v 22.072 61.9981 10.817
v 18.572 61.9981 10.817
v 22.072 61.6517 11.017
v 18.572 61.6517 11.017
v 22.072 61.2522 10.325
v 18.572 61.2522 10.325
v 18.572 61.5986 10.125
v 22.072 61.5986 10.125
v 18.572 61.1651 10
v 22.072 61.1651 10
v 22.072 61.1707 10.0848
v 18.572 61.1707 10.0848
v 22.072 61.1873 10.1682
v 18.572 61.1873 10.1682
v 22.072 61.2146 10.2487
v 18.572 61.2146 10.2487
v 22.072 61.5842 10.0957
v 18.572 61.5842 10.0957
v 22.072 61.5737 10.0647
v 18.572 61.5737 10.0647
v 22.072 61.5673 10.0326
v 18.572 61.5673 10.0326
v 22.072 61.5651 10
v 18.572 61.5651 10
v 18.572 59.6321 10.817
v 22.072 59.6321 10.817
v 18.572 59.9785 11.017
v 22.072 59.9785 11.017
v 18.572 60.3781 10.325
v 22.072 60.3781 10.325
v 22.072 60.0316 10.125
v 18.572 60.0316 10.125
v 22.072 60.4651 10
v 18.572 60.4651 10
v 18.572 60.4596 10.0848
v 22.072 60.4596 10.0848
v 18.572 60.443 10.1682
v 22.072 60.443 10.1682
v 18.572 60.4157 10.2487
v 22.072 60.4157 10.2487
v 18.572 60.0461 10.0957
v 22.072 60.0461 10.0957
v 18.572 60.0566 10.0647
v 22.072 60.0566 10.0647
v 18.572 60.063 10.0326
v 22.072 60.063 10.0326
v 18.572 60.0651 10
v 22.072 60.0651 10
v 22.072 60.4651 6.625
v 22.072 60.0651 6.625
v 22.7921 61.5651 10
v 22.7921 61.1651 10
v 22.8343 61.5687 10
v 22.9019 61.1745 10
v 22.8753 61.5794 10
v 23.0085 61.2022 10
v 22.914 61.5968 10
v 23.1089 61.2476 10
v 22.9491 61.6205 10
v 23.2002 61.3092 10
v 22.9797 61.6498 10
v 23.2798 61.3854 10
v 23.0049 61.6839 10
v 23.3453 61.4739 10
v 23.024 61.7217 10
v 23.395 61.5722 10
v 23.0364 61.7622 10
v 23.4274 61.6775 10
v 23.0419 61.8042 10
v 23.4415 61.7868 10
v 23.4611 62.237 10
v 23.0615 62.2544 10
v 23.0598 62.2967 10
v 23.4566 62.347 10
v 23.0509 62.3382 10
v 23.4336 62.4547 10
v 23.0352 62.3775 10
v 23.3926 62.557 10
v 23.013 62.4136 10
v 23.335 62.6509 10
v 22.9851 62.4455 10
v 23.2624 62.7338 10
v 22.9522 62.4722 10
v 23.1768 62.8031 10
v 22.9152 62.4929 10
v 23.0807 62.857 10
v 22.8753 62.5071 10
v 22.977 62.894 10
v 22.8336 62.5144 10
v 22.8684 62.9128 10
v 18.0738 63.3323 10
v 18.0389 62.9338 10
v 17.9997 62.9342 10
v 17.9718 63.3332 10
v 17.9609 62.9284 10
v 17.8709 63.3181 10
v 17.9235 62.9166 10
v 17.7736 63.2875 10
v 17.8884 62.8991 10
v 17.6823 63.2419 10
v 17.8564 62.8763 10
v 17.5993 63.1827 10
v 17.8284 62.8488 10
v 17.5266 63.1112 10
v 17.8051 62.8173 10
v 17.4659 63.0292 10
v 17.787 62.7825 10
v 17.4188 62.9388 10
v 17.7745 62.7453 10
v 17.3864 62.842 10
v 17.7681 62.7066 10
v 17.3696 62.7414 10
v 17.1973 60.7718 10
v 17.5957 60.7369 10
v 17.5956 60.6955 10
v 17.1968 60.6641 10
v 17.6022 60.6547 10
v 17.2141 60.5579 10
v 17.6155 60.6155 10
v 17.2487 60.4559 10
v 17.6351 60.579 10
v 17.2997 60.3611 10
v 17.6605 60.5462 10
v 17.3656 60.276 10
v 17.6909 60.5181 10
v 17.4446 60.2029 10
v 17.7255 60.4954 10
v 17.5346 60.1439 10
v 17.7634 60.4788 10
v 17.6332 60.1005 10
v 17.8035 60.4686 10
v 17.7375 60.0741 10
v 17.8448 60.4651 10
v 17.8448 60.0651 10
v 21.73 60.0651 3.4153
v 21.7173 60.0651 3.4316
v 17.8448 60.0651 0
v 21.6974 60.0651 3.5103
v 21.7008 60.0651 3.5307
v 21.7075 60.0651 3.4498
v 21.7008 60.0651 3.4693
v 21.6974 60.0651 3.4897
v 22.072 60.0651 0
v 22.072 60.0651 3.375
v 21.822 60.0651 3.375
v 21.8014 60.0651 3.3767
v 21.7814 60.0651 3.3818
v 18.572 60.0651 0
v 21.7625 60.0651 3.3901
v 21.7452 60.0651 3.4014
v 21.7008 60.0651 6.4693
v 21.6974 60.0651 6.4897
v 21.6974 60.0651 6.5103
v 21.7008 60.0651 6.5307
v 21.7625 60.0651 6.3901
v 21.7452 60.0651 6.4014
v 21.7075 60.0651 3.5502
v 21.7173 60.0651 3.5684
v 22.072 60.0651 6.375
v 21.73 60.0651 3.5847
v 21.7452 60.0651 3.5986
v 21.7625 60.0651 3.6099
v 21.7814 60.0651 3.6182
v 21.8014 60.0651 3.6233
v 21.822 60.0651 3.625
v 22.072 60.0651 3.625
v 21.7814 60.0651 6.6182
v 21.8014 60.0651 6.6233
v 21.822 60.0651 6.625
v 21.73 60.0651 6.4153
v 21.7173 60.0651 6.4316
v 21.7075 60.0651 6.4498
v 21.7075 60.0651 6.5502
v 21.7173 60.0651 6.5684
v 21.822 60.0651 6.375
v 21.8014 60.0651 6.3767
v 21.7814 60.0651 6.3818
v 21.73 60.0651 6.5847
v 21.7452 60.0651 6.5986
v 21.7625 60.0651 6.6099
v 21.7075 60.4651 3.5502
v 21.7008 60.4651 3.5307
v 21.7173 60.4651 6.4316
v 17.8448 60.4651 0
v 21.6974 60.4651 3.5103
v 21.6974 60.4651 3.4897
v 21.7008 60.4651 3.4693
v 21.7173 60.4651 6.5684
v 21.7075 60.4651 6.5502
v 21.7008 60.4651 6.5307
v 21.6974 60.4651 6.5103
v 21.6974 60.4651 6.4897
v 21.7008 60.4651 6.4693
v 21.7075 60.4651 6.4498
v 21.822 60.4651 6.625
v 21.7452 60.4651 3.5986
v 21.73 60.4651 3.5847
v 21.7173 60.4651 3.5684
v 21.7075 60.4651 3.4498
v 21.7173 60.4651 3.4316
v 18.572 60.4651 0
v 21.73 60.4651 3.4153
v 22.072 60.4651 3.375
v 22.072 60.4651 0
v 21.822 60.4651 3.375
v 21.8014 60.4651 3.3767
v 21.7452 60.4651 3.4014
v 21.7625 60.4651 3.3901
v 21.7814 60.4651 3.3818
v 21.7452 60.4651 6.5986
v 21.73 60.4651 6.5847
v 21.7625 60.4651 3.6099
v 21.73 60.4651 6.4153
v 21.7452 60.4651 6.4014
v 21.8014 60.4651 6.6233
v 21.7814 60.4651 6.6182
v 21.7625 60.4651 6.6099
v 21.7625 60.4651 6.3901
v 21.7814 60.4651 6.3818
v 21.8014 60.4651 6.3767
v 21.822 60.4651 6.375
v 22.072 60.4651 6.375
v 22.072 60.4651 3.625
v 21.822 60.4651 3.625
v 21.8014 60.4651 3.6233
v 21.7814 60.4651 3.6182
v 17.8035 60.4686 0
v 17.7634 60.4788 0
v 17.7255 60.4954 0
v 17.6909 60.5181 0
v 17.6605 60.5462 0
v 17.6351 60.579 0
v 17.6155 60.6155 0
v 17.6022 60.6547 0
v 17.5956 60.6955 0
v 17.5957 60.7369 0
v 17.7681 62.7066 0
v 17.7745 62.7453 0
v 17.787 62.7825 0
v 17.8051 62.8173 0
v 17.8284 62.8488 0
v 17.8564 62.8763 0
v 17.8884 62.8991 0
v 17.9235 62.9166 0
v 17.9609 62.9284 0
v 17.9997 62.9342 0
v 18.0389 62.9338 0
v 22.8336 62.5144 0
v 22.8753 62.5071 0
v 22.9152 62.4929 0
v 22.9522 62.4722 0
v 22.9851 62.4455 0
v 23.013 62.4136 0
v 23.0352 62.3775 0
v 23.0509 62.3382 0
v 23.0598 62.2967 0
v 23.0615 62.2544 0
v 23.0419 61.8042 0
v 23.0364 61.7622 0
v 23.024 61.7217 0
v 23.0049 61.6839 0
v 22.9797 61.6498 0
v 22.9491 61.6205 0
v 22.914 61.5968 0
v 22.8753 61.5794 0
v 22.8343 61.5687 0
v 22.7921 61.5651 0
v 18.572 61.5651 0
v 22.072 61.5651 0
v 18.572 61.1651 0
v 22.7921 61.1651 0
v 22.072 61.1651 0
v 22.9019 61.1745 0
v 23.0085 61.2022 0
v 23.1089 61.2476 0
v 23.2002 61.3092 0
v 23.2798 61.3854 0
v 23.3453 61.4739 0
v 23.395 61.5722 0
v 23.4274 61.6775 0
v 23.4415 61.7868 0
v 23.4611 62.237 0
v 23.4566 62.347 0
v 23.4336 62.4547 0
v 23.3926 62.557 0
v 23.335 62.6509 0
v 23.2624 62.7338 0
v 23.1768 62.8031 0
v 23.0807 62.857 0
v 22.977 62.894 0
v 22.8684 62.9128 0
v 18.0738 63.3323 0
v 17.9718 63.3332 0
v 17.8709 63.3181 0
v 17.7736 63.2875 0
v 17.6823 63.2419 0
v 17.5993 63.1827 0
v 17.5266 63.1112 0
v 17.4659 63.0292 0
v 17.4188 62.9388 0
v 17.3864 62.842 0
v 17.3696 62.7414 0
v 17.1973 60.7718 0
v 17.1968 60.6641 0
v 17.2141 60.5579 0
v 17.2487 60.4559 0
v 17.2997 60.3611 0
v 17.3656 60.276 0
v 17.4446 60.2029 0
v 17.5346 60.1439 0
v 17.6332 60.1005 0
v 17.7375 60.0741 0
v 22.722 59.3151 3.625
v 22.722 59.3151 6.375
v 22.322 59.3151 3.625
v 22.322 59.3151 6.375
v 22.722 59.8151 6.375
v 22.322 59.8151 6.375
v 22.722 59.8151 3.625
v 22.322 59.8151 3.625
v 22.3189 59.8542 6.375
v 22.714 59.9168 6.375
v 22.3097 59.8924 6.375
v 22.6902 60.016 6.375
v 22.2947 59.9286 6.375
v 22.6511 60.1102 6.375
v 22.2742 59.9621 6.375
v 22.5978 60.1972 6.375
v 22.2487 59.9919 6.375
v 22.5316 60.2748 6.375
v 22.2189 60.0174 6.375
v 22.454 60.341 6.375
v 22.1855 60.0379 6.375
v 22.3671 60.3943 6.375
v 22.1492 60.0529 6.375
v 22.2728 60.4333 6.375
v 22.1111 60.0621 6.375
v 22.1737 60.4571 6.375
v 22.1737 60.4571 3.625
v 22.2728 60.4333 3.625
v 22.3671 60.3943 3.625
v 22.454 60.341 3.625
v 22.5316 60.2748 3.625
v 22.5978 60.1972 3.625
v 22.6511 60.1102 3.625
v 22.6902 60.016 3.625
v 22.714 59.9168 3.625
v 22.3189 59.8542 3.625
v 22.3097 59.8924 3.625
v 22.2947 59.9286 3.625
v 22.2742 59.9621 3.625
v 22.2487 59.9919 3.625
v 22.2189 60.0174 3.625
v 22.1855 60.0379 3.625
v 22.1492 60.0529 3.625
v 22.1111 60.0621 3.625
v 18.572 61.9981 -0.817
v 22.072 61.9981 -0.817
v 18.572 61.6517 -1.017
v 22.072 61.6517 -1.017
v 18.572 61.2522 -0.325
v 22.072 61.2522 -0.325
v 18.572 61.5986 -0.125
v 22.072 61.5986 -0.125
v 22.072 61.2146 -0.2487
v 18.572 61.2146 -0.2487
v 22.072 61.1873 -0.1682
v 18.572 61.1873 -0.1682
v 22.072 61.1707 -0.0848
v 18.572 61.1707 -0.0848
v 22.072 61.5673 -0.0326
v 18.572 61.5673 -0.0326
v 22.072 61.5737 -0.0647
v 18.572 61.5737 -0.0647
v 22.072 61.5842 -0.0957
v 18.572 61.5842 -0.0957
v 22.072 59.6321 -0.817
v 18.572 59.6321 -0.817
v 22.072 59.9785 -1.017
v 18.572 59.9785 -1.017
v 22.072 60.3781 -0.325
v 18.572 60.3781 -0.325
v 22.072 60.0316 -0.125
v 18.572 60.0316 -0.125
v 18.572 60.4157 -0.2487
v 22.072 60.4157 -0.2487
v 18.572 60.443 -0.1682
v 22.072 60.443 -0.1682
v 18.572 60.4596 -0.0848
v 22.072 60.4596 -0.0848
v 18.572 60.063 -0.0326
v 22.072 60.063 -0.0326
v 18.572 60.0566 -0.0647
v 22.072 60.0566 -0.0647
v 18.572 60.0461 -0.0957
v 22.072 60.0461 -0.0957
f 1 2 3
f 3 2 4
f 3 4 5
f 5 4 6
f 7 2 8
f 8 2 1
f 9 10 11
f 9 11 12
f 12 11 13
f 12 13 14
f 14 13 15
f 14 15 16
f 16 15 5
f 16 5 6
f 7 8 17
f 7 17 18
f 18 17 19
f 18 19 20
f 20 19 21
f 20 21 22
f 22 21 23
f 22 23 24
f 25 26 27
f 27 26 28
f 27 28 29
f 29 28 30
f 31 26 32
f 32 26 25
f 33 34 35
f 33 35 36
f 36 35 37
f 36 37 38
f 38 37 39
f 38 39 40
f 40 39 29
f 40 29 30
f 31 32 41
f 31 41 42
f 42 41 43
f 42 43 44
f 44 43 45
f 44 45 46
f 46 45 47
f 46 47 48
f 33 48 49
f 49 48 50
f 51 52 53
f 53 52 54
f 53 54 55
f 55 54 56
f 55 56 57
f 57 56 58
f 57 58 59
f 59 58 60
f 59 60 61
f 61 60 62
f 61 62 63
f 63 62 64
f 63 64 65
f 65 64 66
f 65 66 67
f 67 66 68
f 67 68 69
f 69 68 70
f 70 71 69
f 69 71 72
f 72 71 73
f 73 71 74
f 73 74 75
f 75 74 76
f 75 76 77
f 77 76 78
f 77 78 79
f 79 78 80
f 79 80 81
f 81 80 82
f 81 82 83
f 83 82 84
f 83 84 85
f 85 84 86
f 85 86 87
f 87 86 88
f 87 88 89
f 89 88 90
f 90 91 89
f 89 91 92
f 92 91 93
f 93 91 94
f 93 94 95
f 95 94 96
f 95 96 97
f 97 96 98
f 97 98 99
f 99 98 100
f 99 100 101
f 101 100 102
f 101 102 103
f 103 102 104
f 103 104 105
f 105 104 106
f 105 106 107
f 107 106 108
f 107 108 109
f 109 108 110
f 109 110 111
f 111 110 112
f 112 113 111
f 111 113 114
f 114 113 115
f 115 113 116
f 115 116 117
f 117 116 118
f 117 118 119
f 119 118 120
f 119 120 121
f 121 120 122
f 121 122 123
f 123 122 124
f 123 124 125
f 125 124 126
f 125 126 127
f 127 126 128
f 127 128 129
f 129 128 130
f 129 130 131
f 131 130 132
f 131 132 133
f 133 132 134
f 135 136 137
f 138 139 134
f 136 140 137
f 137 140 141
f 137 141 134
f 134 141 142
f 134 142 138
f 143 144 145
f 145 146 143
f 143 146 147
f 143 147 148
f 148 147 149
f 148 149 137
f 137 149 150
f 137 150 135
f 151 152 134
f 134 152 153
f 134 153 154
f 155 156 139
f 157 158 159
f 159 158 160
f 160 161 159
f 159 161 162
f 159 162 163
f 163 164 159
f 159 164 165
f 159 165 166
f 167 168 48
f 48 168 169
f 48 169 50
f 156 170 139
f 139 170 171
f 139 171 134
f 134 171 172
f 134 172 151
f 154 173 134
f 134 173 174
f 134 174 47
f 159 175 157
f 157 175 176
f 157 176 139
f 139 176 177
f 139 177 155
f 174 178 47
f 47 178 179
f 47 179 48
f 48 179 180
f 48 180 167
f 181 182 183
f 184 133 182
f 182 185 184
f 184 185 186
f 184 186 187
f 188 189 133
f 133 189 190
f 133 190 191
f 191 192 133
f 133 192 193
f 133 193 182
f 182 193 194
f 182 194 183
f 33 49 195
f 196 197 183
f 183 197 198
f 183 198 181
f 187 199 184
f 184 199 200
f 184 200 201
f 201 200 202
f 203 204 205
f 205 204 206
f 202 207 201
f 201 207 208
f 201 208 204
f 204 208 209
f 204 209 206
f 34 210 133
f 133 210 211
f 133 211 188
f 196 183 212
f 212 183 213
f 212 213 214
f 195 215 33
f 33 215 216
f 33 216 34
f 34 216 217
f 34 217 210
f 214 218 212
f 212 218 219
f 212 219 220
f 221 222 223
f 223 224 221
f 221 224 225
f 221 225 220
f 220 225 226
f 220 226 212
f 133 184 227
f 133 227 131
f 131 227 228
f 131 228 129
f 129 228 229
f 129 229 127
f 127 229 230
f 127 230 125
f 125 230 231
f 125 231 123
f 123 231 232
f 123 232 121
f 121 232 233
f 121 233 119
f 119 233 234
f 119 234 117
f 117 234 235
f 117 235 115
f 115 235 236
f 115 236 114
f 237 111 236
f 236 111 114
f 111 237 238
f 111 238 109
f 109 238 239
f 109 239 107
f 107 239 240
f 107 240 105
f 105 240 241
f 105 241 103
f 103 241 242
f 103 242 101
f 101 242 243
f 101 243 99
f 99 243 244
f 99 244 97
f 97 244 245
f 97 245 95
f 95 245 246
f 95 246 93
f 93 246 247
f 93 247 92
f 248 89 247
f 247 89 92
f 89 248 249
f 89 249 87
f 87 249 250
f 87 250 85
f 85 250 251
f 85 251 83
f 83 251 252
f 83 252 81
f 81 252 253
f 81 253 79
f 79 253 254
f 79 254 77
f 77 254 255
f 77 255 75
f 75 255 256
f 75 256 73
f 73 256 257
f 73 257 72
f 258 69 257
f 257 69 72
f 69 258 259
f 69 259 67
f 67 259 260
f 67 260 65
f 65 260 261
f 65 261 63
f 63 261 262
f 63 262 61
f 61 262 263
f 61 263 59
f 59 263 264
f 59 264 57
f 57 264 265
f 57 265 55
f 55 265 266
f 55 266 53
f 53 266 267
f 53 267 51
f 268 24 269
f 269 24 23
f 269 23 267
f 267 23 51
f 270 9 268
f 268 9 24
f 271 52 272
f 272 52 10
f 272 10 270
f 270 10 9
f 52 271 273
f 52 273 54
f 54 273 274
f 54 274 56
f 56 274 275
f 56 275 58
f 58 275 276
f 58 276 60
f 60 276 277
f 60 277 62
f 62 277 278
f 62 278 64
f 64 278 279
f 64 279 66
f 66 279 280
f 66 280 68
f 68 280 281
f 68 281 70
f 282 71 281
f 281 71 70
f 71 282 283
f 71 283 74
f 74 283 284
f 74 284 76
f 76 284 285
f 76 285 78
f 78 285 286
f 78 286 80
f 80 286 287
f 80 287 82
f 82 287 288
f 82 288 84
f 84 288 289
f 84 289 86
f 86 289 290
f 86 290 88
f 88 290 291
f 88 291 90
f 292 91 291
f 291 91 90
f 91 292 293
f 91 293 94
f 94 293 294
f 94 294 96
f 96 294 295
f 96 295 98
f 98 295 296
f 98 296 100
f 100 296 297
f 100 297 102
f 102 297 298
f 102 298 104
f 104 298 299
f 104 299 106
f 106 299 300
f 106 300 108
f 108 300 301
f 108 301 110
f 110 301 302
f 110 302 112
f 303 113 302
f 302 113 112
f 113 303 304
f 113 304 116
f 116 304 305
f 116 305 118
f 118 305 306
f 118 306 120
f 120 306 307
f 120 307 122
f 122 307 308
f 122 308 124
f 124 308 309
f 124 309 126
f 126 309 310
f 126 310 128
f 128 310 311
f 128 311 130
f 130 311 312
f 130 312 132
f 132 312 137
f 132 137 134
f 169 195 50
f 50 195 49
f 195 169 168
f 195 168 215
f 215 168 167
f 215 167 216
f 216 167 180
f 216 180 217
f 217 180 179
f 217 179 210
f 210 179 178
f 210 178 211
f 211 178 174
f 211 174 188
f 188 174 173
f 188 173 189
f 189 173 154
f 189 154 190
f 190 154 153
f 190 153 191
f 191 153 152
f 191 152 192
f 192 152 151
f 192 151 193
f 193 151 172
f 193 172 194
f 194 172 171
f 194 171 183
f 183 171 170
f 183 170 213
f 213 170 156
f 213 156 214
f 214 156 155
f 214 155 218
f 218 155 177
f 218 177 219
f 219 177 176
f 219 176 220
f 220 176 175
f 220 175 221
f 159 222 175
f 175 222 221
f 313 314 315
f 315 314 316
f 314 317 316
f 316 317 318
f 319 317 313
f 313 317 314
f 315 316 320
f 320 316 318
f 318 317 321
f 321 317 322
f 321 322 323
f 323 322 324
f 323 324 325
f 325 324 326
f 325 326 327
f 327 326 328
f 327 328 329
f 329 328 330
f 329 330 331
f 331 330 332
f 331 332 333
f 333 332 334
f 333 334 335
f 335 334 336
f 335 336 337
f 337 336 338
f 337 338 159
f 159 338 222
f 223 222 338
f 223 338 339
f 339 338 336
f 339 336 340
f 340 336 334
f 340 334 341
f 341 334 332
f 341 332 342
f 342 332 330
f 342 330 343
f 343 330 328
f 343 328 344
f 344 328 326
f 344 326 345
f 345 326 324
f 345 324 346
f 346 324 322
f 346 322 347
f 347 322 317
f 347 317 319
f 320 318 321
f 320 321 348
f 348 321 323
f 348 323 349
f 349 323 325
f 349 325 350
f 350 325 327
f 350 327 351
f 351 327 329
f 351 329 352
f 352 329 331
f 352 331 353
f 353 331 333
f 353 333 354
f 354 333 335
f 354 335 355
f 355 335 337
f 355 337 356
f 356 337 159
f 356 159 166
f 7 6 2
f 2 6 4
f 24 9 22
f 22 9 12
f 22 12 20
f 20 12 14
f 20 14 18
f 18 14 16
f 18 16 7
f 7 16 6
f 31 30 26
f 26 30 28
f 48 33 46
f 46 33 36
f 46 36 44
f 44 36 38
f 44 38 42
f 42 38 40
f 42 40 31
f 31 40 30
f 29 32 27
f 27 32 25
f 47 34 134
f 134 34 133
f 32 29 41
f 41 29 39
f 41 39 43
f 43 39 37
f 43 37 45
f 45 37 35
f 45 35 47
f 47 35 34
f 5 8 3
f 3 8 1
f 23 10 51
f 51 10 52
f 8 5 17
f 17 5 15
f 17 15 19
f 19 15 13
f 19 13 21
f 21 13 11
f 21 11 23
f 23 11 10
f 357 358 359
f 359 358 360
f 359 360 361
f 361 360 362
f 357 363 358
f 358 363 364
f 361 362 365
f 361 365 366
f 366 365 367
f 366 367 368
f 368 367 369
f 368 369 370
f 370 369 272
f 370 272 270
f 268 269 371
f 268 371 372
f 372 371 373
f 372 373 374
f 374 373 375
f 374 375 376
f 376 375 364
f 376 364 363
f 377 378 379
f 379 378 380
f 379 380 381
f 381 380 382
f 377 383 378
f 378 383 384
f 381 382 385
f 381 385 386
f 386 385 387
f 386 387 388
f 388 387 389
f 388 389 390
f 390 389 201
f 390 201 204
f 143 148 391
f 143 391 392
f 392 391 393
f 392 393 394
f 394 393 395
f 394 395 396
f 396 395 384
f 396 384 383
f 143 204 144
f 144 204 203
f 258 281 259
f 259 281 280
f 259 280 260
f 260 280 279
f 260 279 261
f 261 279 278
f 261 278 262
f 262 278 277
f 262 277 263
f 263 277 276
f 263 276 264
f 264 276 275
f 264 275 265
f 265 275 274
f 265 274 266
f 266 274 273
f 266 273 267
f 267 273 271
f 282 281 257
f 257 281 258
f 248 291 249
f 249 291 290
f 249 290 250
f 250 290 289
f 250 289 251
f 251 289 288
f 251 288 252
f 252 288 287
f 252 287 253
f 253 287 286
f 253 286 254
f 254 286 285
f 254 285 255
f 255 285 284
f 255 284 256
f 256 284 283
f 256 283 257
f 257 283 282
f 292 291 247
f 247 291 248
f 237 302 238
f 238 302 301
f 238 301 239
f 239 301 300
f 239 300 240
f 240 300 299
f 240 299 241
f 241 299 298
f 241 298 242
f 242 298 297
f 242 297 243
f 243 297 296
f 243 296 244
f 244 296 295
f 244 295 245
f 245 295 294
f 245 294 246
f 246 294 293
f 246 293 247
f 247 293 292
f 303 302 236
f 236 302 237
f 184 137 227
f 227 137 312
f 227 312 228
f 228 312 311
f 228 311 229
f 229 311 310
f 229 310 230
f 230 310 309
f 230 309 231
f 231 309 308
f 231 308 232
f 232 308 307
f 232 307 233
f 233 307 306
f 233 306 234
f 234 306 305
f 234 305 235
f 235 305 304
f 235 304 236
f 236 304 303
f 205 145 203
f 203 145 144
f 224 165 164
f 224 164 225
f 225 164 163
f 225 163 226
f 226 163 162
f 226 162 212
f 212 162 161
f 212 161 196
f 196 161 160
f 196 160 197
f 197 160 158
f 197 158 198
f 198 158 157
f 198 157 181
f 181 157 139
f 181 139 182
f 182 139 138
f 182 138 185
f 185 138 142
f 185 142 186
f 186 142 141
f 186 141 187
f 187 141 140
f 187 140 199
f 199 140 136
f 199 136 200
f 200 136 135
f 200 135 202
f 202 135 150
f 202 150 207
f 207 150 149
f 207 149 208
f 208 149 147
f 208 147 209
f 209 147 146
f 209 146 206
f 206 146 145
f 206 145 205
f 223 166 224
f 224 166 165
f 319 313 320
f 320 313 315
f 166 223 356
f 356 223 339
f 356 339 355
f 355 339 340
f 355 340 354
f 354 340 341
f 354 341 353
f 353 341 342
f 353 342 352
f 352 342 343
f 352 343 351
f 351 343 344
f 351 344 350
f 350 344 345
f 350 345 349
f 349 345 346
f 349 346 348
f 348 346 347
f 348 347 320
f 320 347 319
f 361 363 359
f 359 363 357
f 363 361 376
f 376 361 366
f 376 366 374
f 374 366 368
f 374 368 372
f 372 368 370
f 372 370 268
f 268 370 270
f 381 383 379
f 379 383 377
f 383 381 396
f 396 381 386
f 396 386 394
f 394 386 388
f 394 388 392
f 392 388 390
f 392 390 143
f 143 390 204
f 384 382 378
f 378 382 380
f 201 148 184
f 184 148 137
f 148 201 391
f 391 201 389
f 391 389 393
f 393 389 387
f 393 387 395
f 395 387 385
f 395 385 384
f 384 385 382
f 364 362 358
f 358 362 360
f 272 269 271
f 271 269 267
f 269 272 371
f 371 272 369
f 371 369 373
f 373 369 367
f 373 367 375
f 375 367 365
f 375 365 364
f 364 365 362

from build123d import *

# Parameters (mm, degrees)
BASE_FLANGE1_DEPTH       = 10
CUT_EXTRUDE1_REACH       = 27.713
MITER_START              = 3.625
MITER_FLANGE1_DEPTH      = 2.75
MITER_START_2            = 18.571970472
MITER_FLANGE4_DEPTH      = 4.220143907
MITER_START_3            = 17.844797598
MITER_FLANGE5_DEPTH      = 4.227172874
CUT_EXTRUDE8_DEPTH       = 0.727172875
CUT_EXTRUDE9_START       = -0.720143907
CUT_EXTRUDE9_DEPTH       = 0.720143907
CUT_EXTRUDE10_DEPTH      = 22.568364065
CUT_EXTRUDE10_DEPTH_BACK = 22.568364065
SKETCH26_W               = 10.008347653
SKETCH26_H               = 5.563663723


# Read off the part's stored shape, not the designer's step: Miter Flange1, Miter Flange4, Miter Flange5
# Sheet-metal steps are written as plain solids
with BuildPart() as part:
    # Sketch1 → Base-Flange1 (new body)
    with BuildSketch(Plane.XY):
        with BuildLine():
            Line((18.571970472, 61.565136218), (22.792114379, 61.565136218))
            ThreePointArc((22.792114379, 61.565136218), (22.964992643, 61.634545227), (23.041876434, 61.804231371))
            Line((23.041876434, 61.804231371), (23.061531352, 62.254403009))
            ThreePointArc((23.061531352, 62.254403009), (22.999729249, 62.43014431), (22.833558233, 62.51435653))
            Line((22.833558233, 62.51435653), (18.038908504, 62.933834027))
            ThreePointArc((18.038908504, 62.933834027), (17.856422666, 62.876296464), (17.768070893, 62.706574288))
            Line((17.768070893, 62.706574288), (17.595748923, 60.736925153))
            ThreePointArc((17.595748923, 60.736925153), (17.660478263, 60.546238666), (17.844797598, 60.465136218))
            Line((17.844797598, 60.465136218), (22.071970472, 60.465136218))
            Line((22.071970472, 60.465136218), (22.071970472, 60.065136218))
            Line((22.071970472, 60.065136218), (17.844797598, 60.065136218))
            ThreePointArc((17.844797598, 60.065136218), (17.365567329, 60.276002583), (17.197271044, 60.771787451))
            Line((17.197271044, 60.771787451), (17.369593014, 62.741436586))
            ThreePointArc((17.369593014, 62.741436586), (17.599307622, 63.182714241), (18.073770801, 63.332311907))
            Line((18.073770801, 63.332311907), (22.86842053, 62.91283441))
            ThreePointArc((22.86842053, 62.91283441), (23.300465172, 62.693882636), (23.461150641, 62.236955254))
            Line((23.461150641, 62.236955254), (23.441495723, 61.786783616))
            ThreePointArc((23.441495723, 61.786783616), (23.241597865, 61.345599642), (22.792114379, 61.165136218))
            Line((22.792114379, 61.165136218), (18.571970472, 61.165136218))
            Line((18.571970472, 61.165136218), (18.571970472, 61.565136218))
        make_face()
    extrude(amount=BASE_FLANGE1_DEPTH)

    # Sketch7 → Cut-Extrude1 (cut, up to next)
    with BuildSketch(Plane.XZ.offset(-60.065136218), mode=Mode.PRIVATE) as cut_extrude1_sk1:
        with BuildLine():
            Line((22.071970472, 3.375), (21.821970472, 3.375))
            ThreePointArc((21.821970472, 3.375), (21.696970472, 3.5), (21.821970472, 3.625))
            Line((21.821970472, 3.625), (22.071970472, 3.625))
            ThreePointArc((22.071970472, 3.625), (22.196970472, 3.5), (22.071970472, 3.375))
        make_face()
    cut_extrude1_tool1 = extrude(cut_extrude1_sk1.sketch, amount=-CUT_EXTRUDE1_REACH, mode=Mode.PRIVATE) & part.part
    # Sketch7 → Cut-Extrude1 (cut, up to next)
    with BuildSketch(Plane.XZ.offset(-60.065136218), mode=Mode.PRIVATE) as cut_extrude1_sk2:
        with BuildLine():
            Line((22.071970472, 6.375), (21.821970472, 6.375))
            ThreePointArc((21.821970472, 6.375), (21.696970472, 6.5), (21.821970472, 6.625))
            Line((21.821970472, 6.625), (22.071970472, 6.625))
            ThreePointArc((22.071970472, 6.625), (22.196970472, 6.5), (22.071970472, 6.375))
        make_face()
    cut_extrude1_tool2 = extrude(cut_extrude1_sk2.sketch, amount=-CUT_EXTRUDE1_REACH, mode=Mode.PRIVATE) & part.part
    add(cut_extrude1_tool1.solids().sort_by_distance((21.94697, 60.065136, 3.5))[0], mode=Mode.SUBTRACT)
    add(cut_extrude1_tool2.solids().sort_by_distance((21.94697, 60.065136, 6.5))[0], mode=Mode.SUBTRACT)

    # Miter Flange1 outline → Miter Flange1 (add)
    with BuildSketch(Plane.XY.offset(MITER_START)):
        with BuildLine():
            Line((22.321970472, 59.315136218), (22.721970472, 59.315136218))
            Line((22.721970472, 59.315136218), (22.721970472, 59.815136218))
            ThreePointArc((22.721970472, 59.815136218), (22.53158988, 60.274755626), (22.071970472, 60.465136218))
            Line((22.071970472, 60.465136218), (22.071970472, 60.065136218))
            ThreePointArc((22.071970472, 60.065136218), (22.248747167, 59.991912914), (22.321970472, 59.815136218))
            Line((22.321970472, 59.815136218), (22.321970472, 59.315136218))
        make_face()
    extrude(amount=MITER_FLANGE1_DEPTH)

    # Miter Flange4 outline → Miter Flange4 (add)
    with BuildSketch(Plane.YZ.offset(MITER_START_2)):
        with BuildLine():
            Line((61.99814892, 10.816987298), (61.651738758, 11.016987298))
            Line((61.651738758, 11.016987298), (61.252219705, 10.325))
            ThreePointArc((61.252219705, 10.325), (61.187284431, 10.168232379), (61.165136218, 10))
            Line((61.165136218, 10), (61.565136218, 10))
            ThreePointArc((61.565136218, 10), (61.573654761, 10.064704761), (61.598629867, 10.125))
            Line((61.598629867, 10.125), (61.99814892, 10.816987298))
        make_face()
    extrude(amount=MITER_FLANGE4_DEPTH)

    # Miter Flange5 outline → Miter Flange5 (add)
    with BuildSketch(Plane.YZ.offset(MITER_START_3)):
        with BuildLine():
            Line((59.978533677, 11.016987298), (59.632123516, 10.816987298))
            Line((59.632123516, 10.816987298), (60.031642569, 10.125))
            ThreePointArc((60.031642569, 10.125), (60.056617674, 10.064704761), (60.065136218, 10))
            Line((60.065136218, 10), (60.465136218, 10))
            ThreePointArc((60.465136218, 10), (60.442988005, 10.168232379), (60.37805273, 10.325))
            Line((60.37805273, 10.325), (59.978533677, 11.016987298))
        make_face()
    extrude(amount=MITER_FLANGE5_DEPTH)

    # Sketch20 → Cut-Extrude8 (cut)
    with BuildSketch(Plane.ZY.offset(-17.844797598)):
        with BuildLine():
            Line((10.125, 60.031642569), (10.816987298, 59.632123516))
            Line((10.816987298, 59.632123516), (11.016987298, 59.978533677))
            Line((11.016987298, 59.978533677), (10.325, 60.37805273))
            ThreePointArc((10.325, 60.37805273), (10.168232379, 60.442988005), (10, 60.465136218))
            Line((10, 60.465136218), (10, 60.065136218))
            ThreePointArc((10, 60.065136218), (10.064704761, 60.056617674), (10.125, 60.031642569))
        make_face()
    extrude(amount=-CUT_EXTRUDE8_DEPTH, mode=Mode.SUBTRACT)

    # Sketch23 → Cut-Extrude9 (cut)
    with BuildSketch(Plane(origin=(22.792114379, 0, 0), x_dir=(0, 0, -1), z_dir=(1, 0, 0)).offset(CUT_EXTRUDE9_START)):
        with BuildLine():
            Line((-10.125, 61.598629867), (-10.816987298, 61.99814892))
            Line((-10.816987298, 61.99814892), (-11.016987298, 61.651738758))
            Line((-11.016987298, 61.651738758), (-10.325, 61.252219705))
            ThreePointArc((-10.325, 61.252219705), (-10.168232379, 61.187284431), (-10, 61.165136218))
            Line((-10, 61.165136218), (-10, 61.565136218))
            ThreePointArc((-10, 61.565136218), (-10.064704761, 61.573654761), (-10.125, 61.598629867))
        make_face()
    extrude(amount=CUT_EXTRUDE9_DEPTH, mode=Mode.SUBTRACT)

    # Sketch26 → Cut-Extrude10 (cut, two sides: drawn at the far end of the back side and taken through both)
    with BuildSketch(Plane(origin=(5.63606087, 64.420470526, 0), x_dir=(0.9961946980917451, -0.08715574274766313, 0), z_dir=(0.08715574274766313, 0.9961946980917451, 0)).offset(-CUT_EXTRUDE10_DEPTH_BACK)):
        with Locations((14.807454486, -2.218168138)):
            Rectangle(SKETCH26_W, SKETCH26_H)
    extrude(amount=CUT_EXTRUDE10_DEPTH + CUT_EXTRUDE10_DEPTH_BACK, mode=Mode.SUBTRACT)

    # Mirror1: part across plane


with BuildPart() as part_1:
    add(part.part)
    add(part.part.mirror(Plane(origin=(25.016835548, 58.630796571, 5), x_dir=(1, 0, 0), z_dir=(0, 0, 1))))


solid = part_1.part
